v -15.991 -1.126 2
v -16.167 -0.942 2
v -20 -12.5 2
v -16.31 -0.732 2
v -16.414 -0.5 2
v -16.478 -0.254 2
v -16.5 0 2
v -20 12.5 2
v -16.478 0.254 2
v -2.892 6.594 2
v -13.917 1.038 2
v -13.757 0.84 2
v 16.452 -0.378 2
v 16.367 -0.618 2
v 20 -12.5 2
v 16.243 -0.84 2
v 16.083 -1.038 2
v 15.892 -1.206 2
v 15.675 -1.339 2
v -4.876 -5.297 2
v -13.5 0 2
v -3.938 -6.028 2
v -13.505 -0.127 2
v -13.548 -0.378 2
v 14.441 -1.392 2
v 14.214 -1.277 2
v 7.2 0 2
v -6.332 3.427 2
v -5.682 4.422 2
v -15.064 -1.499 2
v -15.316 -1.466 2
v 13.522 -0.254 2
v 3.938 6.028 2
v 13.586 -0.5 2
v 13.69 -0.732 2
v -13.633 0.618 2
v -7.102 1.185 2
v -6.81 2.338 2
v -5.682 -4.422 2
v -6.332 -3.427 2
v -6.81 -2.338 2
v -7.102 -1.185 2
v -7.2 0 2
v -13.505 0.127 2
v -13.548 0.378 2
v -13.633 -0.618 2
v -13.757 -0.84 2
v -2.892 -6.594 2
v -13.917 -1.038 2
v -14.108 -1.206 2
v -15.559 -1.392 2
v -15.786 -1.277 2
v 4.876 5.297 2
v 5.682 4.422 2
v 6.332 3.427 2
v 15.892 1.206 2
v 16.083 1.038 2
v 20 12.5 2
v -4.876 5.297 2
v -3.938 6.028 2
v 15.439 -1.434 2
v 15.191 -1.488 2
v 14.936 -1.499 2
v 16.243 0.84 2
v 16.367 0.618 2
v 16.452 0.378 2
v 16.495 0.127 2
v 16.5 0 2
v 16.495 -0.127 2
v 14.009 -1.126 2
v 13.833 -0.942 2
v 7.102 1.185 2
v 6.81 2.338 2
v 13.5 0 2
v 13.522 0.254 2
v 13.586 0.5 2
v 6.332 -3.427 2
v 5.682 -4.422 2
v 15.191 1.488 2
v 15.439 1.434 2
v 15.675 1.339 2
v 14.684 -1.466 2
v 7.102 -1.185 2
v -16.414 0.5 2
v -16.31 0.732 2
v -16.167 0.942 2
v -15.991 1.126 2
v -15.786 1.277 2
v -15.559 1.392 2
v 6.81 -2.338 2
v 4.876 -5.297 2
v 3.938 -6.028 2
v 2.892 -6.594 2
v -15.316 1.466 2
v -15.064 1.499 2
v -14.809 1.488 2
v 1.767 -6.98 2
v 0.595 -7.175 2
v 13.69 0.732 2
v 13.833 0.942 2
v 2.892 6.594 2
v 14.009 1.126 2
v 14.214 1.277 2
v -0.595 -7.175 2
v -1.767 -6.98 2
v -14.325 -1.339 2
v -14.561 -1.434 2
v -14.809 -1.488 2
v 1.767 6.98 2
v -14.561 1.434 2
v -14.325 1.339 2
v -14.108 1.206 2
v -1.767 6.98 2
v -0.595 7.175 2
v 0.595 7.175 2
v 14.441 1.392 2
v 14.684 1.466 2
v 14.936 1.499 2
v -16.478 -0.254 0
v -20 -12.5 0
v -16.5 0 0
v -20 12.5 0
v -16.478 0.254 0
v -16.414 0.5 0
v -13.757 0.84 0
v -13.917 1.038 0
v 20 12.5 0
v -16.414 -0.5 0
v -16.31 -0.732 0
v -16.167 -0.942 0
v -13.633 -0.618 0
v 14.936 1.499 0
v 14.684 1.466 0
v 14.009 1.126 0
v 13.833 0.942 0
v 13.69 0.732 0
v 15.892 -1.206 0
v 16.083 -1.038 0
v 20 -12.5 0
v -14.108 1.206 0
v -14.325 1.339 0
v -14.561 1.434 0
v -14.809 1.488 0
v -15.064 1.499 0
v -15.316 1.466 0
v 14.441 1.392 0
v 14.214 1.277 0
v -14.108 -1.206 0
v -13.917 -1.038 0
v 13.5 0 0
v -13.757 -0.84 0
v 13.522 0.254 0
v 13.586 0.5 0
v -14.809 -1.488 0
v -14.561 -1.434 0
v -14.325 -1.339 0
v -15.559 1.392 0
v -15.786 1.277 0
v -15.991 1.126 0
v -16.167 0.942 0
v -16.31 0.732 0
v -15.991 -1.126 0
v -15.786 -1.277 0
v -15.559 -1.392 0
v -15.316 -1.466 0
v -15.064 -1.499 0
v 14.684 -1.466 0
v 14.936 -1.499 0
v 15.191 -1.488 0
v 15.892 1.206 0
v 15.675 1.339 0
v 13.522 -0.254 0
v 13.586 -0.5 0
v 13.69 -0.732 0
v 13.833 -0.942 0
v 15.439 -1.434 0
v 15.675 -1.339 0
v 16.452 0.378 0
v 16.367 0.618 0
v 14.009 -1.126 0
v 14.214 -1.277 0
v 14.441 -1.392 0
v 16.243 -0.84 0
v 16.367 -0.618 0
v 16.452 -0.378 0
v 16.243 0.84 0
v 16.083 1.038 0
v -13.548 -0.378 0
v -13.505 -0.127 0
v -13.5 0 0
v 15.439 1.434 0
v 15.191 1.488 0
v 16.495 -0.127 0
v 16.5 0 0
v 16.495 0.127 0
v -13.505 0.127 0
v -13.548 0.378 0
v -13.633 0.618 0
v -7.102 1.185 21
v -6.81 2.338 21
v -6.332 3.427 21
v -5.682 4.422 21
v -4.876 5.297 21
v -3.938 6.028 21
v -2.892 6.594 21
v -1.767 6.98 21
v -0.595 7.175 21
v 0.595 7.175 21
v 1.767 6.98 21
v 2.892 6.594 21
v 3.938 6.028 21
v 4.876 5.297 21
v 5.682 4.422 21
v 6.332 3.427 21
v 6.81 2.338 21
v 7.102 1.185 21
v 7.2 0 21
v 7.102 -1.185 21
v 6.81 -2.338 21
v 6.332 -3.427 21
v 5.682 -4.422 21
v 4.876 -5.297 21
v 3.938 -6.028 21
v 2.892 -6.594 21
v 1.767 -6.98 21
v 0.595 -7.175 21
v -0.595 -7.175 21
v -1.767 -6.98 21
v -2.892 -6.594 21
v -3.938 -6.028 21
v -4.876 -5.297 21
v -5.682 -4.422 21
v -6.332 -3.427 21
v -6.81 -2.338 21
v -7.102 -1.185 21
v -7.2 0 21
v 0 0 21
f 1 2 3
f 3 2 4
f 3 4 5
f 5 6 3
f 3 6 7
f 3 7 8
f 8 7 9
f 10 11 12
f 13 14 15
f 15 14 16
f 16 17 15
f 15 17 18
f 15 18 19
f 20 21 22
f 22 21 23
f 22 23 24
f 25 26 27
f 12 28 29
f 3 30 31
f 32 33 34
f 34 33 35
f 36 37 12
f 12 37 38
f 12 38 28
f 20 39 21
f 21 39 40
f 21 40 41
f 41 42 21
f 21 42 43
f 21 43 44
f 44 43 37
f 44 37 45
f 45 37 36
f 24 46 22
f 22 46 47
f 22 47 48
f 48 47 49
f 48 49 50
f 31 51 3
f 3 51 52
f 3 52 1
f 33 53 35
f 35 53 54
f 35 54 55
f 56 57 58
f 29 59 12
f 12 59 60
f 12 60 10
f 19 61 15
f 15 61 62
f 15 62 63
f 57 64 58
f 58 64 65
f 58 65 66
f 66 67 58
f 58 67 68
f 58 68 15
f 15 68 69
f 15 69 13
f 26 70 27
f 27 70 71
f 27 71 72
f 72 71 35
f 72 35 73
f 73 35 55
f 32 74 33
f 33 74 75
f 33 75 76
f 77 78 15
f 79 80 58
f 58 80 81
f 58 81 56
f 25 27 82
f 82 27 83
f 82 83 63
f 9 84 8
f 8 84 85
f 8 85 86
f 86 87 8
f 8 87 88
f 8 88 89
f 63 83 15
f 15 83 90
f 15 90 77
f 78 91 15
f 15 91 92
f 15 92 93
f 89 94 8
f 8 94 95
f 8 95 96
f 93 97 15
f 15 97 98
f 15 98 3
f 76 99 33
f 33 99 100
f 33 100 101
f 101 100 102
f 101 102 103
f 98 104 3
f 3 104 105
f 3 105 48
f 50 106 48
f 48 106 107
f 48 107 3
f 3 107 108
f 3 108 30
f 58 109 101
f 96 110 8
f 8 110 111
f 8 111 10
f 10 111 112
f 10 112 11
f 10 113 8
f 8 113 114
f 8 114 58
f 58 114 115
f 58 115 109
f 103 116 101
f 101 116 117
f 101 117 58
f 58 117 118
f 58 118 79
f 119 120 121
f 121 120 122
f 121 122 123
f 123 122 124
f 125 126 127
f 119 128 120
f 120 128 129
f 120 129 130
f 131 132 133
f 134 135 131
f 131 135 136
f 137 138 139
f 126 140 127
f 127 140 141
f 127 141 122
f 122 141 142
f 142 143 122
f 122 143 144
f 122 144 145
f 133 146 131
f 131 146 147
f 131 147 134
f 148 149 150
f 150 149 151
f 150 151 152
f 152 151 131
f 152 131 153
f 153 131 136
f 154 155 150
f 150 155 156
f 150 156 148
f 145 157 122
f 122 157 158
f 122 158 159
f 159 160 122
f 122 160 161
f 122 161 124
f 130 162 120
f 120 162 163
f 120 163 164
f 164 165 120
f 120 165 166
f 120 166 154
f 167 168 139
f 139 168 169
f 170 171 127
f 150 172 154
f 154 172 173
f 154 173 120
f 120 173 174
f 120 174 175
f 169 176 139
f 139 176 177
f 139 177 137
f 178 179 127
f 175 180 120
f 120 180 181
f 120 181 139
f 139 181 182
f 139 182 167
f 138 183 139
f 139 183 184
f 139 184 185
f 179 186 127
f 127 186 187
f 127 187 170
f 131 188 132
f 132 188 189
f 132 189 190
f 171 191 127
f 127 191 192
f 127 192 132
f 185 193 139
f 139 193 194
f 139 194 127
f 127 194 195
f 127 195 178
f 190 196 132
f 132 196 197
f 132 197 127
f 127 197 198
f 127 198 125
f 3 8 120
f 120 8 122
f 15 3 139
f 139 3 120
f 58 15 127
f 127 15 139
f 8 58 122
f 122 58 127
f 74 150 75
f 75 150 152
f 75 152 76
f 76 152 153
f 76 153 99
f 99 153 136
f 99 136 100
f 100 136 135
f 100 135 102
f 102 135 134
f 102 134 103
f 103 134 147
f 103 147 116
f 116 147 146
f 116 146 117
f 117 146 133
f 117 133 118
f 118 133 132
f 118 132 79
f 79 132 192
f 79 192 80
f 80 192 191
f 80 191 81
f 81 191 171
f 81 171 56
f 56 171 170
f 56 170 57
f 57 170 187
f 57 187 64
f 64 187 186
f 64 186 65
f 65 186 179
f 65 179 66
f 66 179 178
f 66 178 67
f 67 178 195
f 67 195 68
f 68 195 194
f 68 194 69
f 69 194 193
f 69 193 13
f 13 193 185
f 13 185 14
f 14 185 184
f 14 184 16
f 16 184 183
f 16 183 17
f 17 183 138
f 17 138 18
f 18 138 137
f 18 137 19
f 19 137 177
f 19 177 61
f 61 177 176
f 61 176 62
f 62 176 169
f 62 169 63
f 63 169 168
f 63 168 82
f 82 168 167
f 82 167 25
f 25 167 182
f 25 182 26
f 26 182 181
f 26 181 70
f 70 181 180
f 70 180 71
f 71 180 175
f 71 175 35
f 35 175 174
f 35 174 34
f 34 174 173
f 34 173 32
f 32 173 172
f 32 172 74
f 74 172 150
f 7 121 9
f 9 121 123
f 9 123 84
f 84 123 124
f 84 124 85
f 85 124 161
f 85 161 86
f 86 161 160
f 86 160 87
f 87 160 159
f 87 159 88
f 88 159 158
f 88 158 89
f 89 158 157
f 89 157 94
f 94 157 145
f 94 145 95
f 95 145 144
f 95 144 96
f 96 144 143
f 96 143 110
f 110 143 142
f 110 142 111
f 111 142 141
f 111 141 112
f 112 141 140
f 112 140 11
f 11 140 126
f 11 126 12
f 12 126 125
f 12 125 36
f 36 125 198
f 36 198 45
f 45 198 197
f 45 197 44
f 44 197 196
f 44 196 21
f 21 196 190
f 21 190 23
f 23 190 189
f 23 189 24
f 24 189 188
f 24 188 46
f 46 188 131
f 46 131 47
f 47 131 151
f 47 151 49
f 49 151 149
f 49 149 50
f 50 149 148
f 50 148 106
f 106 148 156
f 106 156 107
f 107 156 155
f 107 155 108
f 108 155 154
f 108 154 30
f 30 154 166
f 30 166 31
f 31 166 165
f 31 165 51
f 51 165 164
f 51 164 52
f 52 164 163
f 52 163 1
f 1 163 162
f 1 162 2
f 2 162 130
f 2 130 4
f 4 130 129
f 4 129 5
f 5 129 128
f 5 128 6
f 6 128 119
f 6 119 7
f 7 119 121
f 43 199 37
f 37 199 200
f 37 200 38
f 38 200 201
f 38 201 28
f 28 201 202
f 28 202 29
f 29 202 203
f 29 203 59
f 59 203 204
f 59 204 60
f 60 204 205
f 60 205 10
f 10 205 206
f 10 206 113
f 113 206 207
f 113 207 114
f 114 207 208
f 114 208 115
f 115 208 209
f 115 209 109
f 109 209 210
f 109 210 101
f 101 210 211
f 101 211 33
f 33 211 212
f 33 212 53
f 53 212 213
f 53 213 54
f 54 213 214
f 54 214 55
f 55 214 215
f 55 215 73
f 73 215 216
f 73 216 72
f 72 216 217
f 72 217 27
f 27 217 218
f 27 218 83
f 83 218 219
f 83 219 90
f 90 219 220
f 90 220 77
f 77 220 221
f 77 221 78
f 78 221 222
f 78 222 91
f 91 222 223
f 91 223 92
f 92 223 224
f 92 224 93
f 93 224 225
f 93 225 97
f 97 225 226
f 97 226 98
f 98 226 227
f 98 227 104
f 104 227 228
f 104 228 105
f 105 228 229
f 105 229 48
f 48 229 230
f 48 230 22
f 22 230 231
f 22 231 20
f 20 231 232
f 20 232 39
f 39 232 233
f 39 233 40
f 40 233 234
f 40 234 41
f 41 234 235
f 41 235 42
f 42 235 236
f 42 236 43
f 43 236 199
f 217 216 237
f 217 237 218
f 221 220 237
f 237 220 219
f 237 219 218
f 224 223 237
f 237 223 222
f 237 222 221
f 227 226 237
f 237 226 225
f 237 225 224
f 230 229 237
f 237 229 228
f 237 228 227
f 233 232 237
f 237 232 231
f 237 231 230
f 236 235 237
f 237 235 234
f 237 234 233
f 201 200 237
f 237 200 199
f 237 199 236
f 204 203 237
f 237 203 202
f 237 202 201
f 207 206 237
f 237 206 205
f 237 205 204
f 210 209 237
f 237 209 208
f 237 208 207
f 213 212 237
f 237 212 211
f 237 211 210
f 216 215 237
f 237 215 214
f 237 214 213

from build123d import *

# Parameters (mm, degrees)
SKETCH1_W           = 40
SKETCH1_H           = 25
SKETCH1_R           = 1.5
BOSS_EXTRUDE1_DEPTH = 2
SKETCH2_R           = 7.2
BOSS_EXTRUDE2_DEPTH = 19


with BuildPart() as part:
    # Sketch1 → Boss-Extrude1 (new body)
    with BuildSketch(Plane.XY):
        Rectangle(SKETCH1_W, SKETCH1_H)
        with Locations((15, 0)):
            Circle(SKETCH1_R, mode=Mode.SUBTRACT)
        with Locations((-15, 0)):
            Circle(SKETCH1_R, mode=Mode.SUBTRACT)
    extrude(amount=BOSS_EXTRUDE1_DEPTH)

    # Sketch2 → Boss-Extrude2 (add)
    with BuildSketch(Plane.XY.offset(2)):
        Circle(SKETCH2_R)
    extrude(amount=BOSS_EXTRUDE2_DEPTH)


solid = part.part
